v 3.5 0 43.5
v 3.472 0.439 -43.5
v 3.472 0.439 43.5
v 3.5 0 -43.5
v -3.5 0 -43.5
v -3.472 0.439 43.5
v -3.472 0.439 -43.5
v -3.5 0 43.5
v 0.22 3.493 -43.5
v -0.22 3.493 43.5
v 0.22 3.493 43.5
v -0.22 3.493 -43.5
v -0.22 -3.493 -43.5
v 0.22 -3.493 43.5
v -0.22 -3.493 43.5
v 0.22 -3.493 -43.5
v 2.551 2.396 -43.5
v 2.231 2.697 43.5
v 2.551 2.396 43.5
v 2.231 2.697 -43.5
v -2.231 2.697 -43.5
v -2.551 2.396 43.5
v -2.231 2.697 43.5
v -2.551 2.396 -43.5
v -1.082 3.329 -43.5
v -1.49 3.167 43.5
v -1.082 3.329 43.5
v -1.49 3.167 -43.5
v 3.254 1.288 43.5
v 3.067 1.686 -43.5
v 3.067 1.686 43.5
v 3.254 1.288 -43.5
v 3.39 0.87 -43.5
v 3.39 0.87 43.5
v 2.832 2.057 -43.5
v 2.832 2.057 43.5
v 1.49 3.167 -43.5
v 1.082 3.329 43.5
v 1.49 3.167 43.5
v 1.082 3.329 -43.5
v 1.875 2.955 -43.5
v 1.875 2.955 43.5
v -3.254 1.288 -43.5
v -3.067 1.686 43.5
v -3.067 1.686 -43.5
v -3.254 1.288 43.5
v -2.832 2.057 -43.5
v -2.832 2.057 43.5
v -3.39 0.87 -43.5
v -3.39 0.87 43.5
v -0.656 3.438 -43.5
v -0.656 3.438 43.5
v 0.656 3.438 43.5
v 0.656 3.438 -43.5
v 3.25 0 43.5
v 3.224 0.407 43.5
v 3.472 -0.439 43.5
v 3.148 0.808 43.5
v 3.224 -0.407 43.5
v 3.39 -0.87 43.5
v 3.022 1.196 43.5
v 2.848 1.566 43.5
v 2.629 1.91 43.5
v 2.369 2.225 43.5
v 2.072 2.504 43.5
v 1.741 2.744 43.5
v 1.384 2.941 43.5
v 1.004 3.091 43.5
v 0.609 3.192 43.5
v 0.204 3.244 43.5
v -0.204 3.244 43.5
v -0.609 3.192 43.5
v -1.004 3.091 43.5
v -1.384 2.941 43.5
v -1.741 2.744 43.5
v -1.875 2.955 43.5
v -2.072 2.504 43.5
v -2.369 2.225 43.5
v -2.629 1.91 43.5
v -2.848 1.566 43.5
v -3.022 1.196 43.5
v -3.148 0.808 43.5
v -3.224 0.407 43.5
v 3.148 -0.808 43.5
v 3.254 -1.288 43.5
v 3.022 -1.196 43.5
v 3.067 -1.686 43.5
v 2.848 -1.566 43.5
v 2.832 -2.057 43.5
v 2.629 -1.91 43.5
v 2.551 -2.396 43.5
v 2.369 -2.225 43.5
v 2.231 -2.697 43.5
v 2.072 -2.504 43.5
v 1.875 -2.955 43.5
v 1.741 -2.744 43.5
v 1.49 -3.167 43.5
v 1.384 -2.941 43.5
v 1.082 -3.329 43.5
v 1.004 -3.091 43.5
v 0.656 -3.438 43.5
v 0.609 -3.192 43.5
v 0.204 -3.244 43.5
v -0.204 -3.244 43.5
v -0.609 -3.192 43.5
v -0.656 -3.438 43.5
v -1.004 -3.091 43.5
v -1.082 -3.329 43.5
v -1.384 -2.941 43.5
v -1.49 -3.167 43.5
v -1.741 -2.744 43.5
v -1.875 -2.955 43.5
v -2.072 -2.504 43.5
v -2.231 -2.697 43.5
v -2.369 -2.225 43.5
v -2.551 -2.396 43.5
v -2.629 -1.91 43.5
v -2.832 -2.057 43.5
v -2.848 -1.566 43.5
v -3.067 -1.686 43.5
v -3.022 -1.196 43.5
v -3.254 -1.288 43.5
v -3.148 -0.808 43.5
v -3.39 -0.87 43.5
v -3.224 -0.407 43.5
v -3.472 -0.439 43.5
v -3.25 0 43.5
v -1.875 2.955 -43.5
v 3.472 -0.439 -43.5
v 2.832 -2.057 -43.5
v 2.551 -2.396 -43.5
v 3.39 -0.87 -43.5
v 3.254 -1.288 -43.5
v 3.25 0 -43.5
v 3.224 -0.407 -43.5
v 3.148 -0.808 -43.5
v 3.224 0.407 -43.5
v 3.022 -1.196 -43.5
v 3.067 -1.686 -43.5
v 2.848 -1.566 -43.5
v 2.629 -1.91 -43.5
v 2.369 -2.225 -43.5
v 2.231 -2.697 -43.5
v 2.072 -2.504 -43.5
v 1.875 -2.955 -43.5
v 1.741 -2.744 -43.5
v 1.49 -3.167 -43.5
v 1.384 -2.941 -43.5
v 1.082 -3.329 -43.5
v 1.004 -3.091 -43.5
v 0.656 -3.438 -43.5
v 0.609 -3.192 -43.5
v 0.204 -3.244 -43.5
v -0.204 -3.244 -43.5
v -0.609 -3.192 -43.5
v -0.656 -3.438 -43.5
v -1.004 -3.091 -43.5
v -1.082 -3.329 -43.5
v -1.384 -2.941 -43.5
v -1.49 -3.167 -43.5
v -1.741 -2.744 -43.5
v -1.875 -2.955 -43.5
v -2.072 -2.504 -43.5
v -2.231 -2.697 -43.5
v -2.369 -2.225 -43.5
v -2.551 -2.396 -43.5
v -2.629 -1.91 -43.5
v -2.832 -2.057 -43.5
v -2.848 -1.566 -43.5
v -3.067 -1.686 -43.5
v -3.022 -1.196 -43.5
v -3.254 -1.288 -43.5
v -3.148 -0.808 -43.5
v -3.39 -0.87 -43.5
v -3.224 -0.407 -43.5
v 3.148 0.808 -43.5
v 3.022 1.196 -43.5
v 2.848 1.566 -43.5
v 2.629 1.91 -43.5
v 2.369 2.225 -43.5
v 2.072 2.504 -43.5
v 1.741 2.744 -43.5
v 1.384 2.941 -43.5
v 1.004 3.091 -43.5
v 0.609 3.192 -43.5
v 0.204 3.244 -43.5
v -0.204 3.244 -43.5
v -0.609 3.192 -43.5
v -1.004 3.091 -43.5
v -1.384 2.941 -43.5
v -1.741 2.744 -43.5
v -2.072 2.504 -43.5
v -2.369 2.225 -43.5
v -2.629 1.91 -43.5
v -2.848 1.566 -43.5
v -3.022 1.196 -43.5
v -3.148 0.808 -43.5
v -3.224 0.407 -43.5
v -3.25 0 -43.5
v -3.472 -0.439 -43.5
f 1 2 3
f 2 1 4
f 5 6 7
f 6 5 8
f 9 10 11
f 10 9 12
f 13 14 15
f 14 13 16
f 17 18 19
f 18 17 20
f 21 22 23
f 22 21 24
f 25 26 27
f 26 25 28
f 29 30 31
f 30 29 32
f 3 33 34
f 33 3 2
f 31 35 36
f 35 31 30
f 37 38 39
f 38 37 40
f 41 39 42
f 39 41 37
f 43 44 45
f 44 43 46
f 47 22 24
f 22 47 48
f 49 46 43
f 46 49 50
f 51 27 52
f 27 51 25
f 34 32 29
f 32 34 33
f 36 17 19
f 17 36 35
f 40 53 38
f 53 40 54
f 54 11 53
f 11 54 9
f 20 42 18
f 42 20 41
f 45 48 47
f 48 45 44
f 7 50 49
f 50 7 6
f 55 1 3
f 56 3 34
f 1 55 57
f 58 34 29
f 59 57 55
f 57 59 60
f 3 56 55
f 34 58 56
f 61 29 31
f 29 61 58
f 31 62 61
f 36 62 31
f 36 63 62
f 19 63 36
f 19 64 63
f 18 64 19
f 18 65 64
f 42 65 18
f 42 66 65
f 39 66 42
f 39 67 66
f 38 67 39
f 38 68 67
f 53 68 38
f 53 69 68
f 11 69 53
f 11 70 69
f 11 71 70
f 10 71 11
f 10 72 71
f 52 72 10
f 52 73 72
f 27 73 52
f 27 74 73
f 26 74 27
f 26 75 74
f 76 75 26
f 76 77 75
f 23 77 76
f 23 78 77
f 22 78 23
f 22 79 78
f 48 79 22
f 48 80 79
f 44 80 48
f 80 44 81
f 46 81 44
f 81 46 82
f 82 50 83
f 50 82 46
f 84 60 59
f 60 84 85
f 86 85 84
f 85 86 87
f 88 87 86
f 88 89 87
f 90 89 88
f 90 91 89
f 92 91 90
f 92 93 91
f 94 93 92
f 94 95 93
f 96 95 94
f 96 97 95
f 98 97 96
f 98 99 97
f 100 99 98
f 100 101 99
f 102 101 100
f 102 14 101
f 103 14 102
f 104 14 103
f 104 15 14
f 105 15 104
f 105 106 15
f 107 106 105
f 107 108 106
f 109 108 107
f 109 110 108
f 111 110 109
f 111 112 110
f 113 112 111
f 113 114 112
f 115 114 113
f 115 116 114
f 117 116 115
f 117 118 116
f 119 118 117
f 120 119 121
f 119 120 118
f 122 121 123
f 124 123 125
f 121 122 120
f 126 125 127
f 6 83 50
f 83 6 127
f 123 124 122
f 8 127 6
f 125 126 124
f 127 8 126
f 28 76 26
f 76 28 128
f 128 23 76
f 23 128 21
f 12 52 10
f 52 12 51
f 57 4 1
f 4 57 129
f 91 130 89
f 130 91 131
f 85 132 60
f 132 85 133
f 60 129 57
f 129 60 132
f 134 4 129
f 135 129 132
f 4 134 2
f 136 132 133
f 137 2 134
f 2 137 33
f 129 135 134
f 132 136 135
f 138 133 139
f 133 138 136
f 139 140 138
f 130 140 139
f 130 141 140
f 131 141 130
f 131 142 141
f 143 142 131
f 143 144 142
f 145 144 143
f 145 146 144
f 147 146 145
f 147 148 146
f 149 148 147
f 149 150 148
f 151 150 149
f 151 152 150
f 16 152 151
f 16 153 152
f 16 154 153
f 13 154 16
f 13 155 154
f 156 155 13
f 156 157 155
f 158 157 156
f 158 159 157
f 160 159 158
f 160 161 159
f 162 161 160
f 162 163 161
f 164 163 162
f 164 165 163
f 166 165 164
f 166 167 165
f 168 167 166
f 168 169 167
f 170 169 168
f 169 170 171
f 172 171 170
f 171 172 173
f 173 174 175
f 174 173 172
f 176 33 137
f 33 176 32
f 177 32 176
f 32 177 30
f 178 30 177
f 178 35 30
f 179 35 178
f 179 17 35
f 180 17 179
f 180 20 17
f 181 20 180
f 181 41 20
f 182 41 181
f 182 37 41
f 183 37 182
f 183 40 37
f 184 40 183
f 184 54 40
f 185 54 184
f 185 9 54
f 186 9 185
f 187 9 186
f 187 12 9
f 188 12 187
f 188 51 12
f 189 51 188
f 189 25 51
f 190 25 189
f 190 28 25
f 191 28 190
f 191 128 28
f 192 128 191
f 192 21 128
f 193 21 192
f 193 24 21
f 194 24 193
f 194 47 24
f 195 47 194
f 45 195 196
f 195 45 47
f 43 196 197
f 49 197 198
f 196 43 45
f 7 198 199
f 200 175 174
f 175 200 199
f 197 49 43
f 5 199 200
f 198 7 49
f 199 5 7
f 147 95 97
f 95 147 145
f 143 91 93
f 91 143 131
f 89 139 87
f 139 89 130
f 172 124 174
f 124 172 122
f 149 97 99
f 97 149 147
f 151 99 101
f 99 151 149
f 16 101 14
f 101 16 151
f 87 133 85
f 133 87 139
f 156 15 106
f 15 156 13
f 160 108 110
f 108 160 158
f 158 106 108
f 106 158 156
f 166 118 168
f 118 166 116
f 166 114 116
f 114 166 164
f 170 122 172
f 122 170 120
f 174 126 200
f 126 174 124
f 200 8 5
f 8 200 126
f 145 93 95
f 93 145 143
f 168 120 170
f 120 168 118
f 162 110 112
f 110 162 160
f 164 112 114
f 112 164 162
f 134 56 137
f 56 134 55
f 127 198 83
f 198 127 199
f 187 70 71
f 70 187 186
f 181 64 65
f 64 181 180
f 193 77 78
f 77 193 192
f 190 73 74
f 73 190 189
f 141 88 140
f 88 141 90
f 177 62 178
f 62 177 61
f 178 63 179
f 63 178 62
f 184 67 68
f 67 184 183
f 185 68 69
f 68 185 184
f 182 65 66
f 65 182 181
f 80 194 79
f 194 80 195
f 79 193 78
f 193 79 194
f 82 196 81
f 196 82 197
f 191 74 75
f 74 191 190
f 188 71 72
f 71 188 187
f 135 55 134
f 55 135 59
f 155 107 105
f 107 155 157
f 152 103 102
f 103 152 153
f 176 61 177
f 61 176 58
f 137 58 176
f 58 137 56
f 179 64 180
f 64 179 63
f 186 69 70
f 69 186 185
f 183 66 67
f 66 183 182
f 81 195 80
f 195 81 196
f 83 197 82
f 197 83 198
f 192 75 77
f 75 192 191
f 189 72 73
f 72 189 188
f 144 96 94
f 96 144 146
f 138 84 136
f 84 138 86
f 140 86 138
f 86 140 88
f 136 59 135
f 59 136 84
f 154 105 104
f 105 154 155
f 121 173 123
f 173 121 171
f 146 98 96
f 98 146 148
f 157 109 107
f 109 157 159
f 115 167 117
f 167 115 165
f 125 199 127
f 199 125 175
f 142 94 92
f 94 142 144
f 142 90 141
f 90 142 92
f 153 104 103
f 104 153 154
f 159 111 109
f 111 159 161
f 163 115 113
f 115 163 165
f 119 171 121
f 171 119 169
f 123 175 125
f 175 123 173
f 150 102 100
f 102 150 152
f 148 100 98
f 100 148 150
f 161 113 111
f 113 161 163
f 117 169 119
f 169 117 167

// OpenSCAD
$fn = 50;


difference() {
	union() {
		translate(v = [0, 0, -43.5000000000]) {
			cylinder(h = 87, r = 3.5000000000);
		}
	}
	union() {
		translate(v = [0, 0, -100.0000000000]) {
			cylinder(h = 200, r = 3.2500000000);
		}
	}
}
